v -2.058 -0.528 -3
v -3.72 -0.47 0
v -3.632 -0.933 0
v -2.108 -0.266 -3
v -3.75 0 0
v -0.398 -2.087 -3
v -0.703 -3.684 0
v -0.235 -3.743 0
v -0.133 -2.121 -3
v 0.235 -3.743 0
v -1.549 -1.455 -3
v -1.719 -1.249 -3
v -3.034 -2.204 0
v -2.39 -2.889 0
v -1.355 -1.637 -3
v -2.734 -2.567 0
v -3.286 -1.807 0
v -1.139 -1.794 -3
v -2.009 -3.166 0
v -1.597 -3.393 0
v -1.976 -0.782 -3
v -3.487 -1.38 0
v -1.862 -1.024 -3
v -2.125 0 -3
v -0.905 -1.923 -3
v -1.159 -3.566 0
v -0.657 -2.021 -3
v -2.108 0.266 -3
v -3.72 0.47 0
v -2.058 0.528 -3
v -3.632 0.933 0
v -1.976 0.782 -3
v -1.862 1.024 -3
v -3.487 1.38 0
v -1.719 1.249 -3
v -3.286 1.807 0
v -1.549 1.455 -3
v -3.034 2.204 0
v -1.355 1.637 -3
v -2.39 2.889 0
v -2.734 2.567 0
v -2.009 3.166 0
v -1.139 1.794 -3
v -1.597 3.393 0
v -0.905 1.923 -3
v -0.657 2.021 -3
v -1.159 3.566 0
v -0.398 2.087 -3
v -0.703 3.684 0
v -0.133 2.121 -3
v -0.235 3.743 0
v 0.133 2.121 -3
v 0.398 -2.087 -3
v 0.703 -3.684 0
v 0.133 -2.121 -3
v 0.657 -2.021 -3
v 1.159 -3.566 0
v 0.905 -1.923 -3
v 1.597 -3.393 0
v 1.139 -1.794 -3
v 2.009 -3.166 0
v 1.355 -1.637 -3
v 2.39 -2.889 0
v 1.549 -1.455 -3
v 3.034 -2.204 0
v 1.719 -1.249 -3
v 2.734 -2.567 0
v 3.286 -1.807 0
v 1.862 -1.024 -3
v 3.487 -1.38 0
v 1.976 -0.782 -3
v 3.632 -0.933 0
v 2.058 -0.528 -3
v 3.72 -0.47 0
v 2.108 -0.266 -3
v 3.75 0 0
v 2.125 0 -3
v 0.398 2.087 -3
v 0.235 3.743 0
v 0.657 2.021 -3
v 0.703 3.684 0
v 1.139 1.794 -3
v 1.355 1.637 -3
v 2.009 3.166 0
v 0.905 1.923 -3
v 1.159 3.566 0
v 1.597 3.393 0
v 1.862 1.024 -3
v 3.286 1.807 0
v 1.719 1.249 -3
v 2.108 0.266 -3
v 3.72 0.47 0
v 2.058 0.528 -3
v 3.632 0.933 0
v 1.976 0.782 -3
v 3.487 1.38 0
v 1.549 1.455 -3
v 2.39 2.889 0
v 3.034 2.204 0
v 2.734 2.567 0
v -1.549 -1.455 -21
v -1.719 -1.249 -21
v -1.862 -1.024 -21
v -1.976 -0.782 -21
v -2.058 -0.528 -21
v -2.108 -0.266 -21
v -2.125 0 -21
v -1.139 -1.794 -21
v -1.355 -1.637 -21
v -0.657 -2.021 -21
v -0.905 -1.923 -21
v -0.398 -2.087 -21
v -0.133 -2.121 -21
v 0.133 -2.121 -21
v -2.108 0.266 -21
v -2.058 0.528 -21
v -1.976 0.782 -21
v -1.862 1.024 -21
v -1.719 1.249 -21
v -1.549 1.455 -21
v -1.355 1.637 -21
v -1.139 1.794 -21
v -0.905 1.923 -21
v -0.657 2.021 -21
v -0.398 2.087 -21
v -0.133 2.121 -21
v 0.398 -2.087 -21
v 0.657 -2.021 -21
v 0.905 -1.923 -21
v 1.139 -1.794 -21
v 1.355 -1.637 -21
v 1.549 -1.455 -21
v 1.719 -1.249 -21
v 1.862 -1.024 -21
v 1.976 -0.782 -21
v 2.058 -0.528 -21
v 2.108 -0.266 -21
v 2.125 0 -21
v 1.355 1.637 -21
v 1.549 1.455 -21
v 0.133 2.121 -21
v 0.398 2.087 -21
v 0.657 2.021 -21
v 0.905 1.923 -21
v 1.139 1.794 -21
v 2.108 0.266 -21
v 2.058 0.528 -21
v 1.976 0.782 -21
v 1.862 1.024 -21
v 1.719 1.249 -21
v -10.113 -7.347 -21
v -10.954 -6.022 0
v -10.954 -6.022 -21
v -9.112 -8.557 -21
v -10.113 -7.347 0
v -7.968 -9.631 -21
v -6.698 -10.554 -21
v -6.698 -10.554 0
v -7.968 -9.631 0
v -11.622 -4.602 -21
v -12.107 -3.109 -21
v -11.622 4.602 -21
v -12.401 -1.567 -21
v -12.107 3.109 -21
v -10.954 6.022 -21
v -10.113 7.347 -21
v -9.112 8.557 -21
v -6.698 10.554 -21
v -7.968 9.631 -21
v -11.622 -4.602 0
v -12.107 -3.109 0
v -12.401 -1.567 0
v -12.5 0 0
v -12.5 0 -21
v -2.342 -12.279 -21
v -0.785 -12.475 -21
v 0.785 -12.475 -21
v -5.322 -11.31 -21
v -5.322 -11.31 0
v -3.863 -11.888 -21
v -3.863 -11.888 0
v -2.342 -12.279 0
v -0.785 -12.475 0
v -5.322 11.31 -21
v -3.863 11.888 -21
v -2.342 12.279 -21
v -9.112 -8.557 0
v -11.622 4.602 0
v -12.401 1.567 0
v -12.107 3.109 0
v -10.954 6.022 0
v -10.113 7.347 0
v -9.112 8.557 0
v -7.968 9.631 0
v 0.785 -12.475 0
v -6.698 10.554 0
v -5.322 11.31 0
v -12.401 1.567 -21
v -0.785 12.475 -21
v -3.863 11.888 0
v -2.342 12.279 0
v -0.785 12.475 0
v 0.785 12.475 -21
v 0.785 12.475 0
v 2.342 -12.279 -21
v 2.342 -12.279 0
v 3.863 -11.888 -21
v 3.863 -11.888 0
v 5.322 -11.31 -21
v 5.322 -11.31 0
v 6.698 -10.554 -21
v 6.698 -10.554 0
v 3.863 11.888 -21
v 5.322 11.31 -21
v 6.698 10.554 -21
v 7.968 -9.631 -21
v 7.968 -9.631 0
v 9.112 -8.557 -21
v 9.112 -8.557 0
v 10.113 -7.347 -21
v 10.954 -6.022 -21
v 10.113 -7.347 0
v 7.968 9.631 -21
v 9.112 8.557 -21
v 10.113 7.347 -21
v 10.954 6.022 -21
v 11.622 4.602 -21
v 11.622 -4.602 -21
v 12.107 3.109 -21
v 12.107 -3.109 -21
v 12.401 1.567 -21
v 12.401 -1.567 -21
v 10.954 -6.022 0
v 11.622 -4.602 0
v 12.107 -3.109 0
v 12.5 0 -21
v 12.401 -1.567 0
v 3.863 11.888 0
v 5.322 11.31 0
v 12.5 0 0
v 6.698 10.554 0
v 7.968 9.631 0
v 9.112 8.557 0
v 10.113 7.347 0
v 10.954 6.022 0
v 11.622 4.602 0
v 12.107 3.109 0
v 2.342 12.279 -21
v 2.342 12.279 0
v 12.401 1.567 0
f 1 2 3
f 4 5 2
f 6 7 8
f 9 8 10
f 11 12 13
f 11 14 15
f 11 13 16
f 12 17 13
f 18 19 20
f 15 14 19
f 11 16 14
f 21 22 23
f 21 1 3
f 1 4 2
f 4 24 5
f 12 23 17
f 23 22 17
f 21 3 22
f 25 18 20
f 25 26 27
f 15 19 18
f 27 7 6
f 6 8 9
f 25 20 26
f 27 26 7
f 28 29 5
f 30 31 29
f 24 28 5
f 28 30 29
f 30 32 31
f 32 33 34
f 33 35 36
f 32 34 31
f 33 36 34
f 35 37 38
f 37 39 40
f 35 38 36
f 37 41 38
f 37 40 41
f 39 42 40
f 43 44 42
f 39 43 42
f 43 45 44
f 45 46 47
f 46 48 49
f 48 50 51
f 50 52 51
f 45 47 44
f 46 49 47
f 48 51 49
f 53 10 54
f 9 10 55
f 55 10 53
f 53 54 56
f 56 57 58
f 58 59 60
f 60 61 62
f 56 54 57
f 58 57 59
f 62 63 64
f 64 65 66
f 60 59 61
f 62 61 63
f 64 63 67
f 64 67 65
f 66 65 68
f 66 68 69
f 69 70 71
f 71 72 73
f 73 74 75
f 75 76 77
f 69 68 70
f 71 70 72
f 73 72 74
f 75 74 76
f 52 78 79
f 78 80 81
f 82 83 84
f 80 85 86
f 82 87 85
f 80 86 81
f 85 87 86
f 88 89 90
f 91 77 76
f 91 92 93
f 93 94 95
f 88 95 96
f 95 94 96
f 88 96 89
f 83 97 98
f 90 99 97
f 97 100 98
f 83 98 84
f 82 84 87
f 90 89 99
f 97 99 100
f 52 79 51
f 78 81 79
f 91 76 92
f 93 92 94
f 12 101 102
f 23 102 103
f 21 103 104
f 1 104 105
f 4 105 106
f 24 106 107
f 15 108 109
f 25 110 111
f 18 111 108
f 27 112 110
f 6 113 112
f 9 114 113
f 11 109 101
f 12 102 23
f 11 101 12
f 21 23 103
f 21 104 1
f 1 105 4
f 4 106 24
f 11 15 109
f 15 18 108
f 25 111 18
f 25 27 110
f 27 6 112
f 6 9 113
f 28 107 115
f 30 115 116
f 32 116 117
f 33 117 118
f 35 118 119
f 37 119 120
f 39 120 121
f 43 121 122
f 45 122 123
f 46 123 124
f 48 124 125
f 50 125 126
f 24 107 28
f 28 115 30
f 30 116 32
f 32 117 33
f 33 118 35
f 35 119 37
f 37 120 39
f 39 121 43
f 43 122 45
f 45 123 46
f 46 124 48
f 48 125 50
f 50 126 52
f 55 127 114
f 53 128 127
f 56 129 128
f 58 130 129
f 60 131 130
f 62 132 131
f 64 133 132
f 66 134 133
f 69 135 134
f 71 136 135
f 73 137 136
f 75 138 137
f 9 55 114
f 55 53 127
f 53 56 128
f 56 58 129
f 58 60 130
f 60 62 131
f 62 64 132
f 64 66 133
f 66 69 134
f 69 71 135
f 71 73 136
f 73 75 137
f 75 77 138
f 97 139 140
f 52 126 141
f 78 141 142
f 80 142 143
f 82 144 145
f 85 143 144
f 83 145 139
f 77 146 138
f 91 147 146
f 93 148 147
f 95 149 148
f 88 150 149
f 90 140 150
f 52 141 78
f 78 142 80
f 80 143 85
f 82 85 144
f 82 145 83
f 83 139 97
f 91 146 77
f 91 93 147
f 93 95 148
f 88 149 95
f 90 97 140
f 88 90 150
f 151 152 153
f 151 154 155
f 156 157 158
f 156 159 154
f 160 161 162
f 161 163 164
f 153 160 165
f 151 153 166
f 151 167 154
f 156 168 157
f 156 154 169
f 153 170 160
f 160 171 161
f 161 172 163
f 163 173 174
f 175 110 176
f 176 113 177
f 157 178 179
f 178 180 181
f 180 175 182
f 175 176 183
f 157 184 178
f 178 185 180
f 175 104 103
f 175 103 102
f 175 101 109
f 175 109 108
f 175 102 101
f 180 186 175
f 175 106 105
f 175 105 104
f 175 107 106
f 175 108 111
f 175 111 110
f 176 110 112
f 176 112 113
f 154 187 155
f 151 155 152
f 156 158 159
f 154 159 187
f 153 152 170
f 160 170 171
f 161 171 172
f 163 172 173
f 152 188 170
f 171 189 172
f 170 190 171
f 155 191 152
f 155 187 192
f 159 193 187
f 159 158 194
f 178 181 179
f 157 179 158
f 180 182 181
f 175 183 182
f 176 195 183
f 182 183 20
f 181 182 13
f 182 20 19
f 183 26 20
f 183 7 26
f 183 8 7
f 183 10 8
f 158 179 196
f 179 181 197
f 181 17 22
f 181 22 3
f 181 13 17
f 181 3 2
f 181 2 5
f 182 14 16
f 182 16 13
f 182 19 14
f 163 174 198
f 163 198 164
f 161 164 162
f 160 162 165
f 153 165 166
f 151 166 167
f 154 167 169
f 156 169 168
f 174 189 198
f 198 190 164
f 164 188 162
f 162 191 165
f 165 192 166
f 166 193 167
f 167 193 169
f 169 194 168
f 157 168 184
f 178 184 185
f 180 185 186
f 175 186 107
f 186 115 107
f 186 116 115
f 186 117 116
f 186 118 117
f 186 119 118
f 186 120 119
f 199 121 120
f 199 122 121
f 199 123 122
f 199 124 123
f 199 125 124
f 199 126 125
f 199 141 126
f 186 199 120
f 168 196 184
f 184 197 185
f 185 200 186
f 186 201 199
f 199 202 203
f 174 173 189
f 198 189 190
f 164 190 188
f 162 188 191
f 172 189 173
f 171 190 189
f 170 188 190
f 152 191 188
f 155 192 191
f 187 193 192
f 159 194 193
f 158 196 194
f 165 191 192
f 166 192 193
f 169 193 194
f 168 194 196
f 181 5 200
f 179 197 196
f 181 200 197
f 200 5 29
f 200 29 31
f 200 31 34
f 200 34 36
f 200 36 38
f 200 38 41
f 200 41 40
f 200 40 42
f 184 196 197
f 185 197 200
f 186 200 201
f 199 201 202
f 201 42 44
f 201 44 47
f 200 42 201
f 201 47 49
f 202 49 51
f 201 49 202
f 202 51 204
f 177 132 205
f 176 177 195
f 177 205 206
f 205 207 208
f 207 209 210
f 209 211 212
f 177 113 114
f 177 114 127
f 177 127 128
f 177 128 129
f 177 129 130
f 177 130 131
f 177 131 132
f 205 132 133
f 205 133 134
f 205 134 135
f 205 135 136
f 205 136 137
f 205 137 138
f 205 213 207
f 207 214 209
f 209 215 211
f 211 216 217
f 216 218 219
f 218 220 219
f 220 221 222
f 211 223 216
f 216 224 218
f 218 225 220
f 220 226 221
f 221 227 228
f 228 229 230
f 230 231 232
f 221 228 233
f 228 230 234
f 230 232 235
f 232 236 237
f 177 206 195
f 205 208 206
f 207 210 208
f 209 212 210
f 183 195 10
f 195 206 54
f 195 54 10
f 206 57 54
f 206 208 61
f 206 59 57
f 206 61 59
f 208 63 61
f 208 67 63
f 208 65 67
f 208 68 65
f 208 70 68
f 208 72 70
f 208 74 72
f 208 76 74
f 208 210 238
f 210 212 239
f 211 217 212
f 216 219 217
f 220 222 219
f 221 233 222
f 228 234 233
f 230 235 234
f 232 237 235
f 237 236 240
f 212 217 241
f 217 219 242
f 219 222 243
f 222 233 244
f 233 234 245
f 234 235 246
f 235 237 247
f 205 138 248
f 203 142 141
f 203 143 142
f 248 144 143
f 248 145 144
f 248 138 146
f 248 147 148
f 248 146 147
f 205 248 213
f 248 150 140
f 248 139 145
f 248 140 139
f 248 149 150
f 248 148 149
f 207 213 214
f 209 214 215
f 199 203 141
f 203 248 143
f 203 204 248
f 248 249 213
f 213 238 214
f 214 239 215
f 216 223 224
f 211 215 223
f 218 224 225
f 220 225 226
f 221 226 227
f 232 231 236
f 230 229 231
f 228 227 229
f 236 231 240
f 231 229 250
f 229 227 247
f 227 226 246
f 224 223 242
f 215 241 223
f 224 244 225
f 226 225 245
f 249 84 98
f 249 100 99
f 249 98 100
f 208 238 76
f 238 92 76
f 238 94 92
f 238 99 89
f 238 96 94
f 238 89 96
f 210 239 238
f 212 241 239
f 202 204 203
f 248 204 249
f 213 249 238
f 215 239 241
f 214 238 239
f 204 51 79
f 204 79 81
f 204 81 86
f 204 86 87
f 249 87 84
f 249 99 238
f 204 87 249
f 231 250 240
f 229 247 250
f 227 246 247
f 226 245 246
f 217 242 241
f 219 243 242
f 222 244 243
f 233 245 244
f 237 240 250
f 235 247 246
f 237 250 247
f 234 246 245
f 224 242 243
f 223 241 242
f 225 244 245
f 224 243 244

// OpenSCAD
$fn = 50;

difference() {
	union() {
		translate(v = [0, 0, -21.0]) {
			cylinder(h = 21, r = 12.5);
		}
	}
	union() {
		translate(v = [0, 0, 0]) {
			rotate(a = [0, 0, 0]) {
				difference() {
					union() {
						translate(v = [0, 0, -24.0]) {
							cylinder(h = 24, r = 2.0);
						}
						translate(v = [0, 0, -3]) {
							cylinder(h = 3, r1 = 2.125, r2 = 3.75);
						}
						translate(v = [0, 0, -24.0]) {
							cylinder(h = 24, r = 2.125);
						}
						translate(v = [0, 0, -24.0]) {
							cylinder(h = 24, r = 2.0);
						}
					}
					union();
				}
			}
		}
	}
}
